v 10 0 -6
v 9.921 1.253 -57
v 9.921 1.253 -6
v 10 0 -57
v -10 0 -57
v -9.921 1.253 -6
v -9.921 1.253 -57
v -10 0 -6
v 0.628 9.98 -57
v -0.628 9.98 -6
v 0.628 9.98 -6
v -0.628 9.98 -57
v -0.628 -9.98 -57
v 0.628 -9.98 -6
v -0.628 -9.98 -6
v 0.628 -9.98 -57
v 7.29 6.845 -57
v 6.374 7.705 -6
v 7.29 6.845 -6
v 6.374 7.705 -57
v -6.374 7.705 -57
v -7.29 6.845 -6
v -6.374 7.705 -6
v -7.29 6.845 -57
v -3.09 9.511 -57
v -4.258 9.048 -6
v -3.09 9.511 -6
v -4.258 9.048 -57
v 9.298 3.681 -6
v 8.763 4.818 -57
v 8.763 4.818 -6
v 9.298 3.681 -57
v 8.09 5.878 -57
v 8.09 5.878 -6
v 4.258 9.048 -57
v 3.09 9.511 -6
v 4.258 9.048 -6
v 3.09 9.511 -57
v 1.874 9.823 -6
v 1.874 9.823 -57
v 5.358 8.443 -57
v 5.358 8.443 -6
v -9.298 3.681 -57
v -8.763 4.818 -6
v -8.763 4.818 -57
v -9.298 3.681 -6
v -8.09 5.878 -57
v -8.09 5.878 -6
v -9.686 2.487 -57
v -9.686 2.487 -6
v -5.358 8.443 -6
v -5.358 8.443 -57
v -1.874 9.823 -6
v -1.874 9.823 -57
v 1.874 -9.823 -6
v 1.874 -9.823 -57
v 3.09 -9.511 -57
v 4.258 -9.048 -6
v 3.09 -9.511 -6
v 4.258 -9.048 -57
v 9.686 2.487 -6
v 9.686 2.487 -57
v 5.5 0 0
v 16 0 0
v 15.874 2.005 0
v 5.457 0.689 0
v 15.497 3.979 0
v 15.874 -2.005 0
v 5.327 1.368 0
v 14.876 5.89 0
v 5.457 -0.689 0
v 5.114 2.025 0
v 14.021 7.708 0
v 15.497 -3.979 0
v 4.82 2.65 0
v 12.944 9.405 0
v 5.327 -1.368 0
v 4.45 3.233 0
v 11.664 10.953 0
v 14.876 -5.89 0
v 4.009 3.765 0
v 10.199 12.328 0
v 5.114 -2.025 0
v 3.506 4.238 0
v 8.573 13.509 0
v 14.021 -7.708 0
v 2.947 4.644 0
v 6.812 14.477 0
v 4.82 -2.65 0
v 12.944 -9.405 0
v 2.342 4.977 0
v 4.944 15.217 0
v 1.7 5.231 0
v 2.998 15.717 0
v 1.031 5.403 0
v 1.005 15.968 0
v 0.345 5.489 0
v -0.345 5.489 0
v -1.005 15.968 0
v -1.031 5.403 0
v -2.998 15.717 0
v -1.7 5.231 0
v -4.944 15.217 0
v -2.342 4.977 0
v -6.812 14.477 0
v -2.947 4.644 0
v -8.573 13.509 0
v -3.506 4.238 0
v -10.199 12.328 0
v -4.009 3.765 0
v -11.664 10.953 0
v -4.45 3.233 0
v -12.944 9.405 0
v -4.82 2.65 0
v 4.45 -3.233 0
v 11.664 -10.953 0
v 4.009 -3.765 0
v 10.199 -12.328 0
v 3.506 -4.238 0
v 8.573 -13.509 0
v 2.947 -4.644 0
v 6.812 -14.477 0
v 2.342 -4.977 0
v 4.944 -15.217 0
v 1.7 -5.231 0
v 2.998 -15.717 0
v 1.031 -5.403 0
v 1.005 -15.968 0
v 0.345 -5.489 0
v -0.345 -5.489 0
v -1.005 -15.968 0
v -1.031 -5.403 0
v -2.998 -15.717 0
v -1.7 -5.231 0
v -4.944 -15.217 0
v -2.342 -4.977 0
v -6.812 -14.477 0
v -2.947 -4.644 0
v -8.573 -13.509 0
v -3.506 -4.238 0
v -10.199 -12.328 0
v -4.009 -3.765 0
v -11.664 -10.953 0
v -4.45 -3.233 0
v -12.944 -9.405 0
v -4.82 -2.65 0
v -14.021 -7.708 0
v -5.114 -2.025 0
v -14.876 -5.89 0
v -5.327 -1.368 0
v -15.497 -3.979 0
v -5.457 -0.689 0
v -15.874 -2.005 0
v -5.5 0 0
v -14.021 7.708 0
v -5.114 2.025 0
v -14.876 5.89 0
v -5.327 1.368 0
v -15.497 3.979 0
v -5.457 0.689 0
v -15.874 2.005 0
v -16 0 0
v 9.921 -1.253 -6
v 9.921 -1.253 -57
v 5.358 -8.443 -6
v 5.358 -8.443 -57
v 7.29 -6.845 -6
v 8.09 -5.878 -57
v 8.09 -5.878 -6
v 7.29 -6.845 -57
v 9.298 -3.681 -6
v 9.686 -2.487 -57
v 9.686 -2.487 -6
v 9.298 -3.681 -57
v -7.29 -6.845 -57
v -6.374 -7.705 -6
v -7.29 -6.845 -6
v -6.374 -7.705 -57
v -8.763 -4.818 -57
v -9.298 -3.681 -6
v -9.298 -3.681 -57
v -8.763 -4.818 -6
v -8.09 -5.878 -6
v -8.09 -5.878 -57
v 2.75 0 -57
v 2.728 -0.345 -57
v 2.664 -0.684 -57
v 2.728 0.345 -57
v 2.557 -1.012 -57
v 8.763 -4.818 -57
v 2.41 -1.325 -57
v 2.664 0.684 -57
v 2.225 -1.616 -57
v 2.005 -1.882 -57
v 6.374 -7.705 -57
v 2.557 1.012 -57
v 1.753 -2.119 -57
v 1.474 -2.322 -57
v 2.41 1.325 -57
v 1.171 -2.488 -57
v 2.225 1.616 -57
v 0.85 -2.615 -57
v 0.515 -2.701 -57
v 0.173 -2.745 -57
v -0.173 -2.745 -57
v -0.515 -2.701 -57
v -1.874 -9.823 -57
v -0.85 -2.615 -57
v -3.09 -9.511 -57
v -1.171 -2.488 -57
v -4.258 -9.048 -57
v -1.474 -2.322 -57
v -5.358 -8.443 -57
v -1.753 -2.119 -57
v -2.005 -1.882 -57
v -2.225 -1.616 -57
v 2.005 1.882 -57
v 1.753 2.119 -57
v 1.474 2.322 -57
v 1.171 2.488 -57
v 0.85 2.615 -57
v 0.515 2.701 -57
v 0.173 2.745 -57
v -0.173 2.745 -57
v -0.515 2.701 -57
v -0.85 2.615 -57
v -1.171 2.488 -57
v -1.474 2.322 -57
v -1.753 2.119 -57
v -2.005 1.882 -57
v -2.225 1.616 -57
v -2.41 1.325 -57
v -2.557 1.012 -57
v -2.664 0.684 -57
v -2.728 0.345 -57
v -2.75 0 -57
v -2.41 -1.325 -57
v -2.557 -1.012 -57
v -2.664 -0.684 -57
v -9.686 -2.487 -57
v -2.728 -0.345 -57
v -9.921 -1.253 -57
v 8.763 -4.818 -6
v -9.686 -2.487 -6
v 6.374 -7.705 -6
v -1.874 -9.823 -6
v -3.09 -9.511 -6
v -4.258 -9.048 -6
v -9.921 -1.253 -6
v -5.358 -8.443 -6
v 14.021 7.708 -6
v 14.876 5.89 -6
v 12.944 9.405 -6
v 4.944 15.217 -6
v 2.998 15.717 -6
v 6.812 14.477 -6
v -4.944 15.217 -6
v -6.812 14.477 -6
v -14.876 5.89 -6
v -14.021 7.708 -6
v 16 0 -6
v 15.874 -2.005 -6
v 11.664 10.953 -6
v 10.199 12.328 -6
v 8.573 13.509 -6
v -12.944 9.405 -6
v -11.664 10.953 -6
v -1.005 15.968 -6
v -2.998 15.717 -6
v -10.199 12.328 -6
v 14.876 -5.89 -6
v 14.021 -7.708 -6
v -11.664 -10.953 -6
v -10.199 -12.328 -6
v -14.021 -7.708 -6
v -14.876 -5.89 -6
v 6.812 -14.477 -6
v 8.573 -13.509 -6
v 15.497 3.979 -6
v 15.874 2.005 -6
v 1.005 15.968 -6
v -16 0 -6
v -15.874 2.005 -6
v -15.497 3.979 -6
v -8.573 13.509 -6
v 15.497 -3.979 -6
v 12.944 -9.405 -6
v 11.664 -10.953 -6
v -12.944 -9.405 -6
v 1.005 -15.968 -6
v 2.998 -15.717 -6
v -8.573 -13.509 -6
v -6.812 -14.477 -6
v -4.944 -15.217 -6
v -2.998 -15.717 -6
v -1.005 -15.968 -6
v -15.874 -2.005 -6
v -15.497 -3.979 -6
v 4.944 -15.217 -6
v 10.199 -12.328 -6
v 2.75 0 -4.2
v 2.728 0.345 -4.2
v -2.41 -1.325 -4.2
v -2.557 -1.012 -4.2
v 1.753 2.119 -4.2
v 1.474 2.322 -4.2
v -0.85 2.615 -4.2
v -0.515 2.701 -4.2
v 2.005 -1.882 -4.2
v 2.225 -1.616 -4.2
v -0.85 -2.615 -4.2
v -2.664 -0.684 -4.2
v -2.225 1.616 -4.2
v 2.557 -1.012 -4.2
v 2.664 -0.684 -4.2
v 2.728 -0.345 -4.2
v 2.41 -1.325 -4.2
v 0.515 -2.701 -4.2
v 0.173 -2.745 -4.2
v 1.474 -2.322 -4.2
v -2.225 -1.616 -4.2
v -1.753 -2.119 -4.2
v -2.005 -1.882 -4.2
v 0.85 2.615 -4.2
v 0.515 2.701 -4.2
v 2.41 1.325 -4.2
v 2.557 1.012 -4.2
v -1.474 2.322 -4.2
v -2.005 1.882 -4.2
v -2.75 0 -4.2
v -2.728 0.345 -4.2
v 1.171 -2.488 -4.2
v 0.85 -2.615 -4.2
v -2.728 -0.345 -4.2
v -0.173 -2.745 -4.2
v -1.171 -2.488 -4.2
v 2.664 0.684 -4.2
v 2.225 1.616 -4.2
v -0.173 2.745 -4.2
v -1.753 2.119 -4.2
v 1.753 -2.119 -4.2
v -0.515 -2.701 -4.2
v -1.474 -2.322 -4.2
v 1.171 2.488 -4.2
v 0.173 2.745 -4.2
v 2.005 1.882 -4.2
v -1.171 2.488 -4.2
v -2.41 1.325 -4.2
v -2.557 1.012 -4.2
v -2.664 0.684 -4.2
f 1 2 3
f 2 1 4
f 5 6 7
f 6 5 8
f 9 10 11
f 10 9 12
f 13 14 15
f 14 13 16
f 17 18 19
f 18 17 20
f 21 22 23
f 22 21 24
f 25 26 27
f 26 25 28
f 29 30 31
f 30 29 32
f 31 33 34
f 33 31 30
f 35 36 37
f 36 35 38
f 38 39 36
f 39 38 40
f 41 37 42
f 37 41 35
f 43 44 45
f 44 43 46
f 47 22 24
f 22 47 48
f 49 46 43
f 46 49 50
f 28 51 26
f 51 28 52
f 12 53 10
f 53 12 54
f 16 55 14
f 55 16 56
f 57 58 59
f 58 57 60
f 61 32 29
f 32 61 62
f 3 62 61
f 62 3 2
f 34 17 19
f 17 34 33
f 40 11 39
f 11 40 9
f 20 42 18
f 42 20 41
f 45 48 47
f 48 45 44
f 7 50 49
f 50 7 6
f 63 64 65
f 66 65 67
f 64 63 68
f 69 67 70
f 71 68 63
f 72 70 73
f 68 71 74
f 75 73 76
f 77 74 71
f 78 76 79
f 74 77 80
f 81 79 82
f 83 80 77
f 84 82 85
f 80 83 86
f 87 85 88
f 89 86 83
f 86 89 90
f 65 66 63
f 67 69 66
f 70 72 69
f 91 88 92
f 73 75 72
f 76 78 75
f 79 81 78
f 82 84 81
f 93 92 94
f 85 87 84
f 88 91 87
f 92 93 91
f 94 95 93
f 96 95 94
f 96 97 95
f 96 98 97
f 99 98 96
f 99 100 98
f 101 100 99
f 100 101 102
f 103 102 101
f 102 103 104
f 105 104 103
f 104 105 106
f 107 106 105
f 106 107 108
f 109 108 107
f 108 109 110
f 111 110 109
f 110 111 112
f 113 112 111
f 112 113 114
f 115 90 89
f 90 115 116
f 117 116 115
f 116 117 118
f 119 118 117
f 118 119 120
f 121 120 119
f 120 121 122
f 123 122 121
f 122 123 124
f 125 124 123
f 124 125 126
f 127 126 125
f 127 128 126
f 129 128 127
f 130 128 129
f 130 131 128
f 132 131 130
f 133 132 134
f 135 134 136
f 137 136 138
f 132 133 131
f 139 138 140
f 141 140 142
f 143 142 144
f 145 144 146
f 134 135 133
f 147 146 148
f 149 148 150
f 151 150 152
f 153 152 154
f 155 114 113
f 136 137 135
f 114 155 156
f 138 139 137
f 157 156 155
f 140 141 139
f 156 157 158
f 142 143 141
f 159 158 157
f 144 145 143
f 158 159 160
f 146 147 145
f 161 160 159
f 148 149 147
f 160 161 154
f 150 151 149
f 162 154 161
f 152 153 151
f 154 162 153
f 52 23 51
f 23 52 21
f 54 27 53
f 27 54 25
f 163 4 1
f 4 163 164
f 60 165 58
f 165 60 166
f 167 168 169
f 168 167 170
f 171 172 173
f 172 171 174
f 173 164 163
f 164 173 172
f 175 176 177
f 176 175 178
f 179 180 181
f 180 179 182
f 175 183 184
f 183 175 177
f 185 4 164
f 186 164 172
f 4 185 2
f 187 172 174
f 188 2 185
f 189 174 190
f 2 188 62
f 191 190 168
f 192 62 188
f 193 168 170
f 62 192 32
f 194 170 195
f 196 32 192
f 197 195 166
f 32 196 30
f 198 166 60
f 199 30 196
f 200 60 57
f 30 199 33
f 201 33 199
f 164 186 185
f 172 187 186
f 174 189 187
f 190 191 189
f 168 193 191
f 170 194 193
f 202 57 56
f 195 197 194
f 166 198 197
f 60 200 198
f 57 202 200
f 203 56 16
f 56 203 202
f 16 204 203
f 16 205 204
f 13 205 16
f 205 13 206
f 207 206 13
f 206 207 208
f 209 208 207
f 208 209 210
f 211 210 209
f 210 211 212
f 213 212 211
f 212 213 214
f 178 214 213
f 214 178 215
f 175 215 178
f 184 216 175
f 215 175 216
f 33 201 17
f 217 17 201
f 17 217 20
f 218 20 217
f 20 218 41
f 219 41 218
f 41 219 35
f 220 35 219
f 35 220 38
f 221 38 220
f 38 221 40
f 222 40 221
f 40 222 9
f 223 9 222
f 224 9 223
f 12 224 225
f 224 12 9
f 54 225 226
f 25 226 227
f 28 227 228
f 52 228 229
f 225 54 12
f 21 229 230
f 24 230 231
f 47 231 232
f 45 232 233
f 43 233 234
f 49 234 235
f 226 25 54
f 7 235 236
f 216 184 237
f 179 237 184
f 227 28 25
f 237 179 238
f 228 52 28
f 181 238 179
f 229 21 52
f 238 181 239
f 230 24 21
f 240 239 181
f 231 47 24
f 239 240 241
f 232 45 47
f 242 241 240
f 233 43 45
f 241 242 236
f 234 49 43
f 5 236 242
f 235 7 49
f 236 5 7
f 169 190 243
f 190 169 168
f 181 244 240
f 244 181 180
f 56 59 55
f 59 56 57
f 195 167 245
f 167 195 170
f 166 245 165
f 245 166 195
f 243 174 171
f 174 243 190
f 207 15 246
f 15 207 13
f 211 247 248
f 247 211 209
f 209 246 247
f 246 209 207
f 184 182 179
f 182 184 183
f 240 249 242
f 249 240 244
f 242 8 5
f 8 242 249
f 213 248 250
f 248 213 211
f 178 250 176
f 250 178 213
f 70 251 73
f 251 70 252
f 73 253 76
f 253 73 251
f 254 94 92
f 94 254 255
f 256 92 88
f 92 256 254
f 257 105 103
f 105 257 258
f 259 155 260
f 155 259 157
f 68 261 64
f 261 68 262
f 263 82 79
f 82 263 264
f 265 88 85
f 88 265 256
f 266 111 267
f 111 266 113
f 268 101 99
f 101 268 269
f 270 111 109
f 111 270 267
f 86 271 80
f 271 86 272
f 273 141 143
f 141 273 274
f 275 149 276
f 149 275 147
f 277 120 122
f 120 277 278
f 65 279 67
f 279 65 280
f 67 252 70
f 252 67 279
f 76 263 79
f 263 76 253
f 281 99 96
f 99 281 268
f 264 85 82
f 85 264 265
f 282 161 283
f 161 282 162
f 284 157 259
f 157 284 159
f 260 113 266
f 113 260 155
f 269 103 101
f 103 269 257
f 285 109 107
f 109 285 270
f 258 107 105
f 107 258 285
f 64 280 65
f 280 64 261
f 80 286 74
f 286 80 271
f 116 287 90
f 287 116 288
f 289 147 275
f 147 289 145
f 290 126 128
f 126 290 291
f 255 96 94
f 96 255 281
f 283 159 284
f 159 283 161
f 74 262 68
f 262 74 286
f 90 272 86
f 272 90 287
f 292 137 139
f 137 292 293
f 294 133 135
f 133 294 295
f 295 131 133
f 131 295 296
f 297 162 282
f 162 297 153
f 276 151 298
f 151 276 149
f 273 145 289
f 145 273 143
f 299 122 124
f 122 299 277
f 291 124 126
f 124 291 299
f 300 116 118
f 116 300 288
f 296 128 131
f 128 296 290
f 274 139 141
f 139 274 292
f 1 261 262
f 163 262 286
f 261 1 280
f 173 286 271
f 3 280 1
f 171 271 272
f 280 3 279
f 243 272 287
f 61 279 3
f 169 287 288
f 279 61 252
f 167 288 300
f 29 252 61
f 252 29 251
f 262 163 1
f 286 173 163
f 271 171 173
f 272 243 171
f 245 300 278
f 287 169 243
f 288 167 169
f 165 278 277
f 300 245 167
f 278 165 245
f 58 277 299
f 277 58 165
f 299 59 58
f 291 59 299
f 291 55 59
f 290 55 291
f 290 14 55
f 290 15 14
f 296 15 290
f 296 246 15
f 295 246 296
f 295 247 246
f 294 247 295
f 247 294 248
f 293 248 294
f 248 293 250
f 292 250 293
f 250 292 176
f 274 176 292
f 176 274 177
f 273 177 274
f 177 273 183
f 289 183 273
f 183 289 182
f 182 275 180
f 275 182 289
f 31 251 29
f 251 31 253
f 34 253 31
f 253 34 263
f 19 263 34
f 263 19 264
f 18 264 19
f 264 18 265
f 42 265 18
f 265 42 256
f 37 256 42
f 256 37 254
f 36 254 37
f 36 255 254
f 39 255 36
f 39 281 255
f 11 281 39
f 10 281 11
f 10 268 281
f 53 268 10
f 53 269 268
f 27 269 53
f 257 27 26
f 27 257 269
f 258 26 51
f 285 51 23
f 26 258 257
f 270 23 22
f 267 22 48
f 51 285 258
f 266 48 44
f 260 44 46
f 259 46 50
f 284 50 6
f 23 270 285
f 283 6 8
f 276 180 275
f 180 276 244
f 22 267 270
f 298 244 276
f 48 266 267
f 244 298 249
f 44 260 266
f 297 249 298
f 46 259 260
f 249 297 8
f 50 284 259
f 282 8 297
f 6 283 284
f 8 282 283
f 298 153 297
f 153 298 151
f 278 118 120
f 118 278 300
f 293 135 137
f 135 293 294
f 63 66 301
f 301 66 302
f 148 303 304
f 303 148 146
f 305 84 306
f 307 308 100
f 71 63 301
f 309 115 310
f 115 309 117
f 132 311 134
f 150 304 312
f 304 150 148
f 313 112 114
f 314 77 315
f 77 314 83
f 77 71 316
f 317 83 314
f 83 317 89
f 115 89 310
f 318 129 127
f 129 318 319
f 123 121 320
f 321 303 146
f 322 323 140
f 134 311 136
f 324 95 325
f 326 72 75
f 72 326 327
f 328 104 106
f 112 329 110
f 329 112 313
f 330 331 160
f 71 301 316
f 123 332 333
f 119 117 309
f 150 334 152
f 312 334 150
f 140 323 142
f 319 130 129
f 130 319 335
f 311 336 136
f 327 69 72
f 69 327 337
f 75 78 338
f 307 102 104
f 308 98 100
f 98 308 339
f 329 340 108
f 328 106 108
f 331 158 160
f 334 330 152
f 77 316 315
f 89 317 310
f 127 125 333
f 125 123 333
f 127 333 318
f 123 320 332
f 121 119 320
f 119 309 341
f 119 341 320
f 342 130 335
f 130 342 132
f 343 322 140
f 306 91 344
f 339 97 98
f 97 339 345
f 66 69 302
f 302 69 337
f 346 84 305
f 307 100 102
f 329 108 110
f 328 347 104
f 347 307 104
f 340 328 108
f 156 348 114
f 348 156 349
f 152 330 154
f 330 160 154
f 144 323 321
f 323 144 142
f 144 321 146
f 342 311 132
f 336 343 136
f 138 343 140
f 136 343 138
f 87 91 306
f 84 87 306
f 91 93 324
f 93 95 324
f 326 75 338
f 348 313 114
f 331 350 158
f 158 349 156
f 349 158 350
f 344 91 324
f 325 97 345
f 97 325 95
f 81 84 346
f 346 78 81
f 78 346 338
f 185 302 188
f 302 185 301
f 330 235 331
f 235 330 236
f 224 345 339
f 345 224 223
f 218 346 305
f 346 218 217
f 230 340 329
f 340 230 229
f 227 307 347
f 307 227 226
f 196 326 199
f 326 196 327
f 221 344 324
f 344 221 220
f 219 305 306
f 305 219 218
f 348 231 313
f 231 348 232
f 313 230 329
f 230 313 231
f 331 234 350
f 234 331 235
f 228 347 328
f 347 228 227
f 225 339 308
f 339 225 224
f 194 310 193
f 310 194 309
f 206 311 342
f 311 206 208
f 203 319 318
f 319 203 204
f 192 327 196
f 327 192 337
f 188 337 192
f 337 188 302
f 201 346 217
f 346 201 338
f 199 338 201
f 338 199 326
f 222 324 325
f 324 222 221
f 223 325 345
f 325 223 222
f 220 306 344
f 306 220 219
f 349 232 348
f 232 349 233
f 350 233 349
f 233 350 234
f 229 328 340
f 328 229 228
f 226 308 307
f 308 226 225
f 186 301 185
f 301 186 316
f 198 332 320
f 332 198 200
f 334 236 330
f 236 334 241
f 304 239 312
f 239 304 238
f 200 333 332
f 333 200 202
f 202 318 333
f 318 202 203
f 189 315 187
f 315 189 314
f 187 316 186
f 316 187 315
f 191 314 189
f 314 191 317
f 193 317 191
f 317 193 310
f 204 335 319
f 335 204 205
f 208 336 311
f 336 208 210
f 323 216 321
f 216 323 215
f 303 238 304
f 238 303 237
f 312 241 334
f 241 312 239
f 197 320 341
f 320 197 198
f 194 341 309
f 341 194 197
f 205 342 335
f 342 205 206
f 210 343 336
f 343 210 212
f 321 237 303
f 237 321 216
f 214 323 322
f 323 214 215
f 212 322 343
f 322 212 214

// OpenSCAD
$fn = 50;


difference() {
	union() {
		translate(v = [0, 0, -57.0000000000]) {
			cylinder(h = 57, r = 10.0000000000);
		}
		translate(v = [0, 0, -6.0000000000]) {
			cylinder(h = 6, r = 16.0000000000);
		}
	}
	union() {
		translate(v = [0, 0, 0]) {
			rotate(a = [0, 0, 0]) {
				difference() {
					union() {
						#translate(v = [0, 0, -57.0000000000]) {
							cylinder(h = 57, r = 2.2500000000);
						}
						#translate(v = [0, 0, -4.2000000000]) {
							cylinder(h = 4.2000000000, r = 10.0000000000, r1 = 2.7500000000, r2 = 5.5000000000);
						}
						#translate(v = [0, 0, -57.0000000000]) {
							cylinder(h = 57, r = 2.7500000000);
						}
						#translate(v = [0, 0, -57.0000000000]) {
							cylinder(h = 57, r = 2.2500000000);
						}
					}
					union();
				}
			}
		}
	}
}
